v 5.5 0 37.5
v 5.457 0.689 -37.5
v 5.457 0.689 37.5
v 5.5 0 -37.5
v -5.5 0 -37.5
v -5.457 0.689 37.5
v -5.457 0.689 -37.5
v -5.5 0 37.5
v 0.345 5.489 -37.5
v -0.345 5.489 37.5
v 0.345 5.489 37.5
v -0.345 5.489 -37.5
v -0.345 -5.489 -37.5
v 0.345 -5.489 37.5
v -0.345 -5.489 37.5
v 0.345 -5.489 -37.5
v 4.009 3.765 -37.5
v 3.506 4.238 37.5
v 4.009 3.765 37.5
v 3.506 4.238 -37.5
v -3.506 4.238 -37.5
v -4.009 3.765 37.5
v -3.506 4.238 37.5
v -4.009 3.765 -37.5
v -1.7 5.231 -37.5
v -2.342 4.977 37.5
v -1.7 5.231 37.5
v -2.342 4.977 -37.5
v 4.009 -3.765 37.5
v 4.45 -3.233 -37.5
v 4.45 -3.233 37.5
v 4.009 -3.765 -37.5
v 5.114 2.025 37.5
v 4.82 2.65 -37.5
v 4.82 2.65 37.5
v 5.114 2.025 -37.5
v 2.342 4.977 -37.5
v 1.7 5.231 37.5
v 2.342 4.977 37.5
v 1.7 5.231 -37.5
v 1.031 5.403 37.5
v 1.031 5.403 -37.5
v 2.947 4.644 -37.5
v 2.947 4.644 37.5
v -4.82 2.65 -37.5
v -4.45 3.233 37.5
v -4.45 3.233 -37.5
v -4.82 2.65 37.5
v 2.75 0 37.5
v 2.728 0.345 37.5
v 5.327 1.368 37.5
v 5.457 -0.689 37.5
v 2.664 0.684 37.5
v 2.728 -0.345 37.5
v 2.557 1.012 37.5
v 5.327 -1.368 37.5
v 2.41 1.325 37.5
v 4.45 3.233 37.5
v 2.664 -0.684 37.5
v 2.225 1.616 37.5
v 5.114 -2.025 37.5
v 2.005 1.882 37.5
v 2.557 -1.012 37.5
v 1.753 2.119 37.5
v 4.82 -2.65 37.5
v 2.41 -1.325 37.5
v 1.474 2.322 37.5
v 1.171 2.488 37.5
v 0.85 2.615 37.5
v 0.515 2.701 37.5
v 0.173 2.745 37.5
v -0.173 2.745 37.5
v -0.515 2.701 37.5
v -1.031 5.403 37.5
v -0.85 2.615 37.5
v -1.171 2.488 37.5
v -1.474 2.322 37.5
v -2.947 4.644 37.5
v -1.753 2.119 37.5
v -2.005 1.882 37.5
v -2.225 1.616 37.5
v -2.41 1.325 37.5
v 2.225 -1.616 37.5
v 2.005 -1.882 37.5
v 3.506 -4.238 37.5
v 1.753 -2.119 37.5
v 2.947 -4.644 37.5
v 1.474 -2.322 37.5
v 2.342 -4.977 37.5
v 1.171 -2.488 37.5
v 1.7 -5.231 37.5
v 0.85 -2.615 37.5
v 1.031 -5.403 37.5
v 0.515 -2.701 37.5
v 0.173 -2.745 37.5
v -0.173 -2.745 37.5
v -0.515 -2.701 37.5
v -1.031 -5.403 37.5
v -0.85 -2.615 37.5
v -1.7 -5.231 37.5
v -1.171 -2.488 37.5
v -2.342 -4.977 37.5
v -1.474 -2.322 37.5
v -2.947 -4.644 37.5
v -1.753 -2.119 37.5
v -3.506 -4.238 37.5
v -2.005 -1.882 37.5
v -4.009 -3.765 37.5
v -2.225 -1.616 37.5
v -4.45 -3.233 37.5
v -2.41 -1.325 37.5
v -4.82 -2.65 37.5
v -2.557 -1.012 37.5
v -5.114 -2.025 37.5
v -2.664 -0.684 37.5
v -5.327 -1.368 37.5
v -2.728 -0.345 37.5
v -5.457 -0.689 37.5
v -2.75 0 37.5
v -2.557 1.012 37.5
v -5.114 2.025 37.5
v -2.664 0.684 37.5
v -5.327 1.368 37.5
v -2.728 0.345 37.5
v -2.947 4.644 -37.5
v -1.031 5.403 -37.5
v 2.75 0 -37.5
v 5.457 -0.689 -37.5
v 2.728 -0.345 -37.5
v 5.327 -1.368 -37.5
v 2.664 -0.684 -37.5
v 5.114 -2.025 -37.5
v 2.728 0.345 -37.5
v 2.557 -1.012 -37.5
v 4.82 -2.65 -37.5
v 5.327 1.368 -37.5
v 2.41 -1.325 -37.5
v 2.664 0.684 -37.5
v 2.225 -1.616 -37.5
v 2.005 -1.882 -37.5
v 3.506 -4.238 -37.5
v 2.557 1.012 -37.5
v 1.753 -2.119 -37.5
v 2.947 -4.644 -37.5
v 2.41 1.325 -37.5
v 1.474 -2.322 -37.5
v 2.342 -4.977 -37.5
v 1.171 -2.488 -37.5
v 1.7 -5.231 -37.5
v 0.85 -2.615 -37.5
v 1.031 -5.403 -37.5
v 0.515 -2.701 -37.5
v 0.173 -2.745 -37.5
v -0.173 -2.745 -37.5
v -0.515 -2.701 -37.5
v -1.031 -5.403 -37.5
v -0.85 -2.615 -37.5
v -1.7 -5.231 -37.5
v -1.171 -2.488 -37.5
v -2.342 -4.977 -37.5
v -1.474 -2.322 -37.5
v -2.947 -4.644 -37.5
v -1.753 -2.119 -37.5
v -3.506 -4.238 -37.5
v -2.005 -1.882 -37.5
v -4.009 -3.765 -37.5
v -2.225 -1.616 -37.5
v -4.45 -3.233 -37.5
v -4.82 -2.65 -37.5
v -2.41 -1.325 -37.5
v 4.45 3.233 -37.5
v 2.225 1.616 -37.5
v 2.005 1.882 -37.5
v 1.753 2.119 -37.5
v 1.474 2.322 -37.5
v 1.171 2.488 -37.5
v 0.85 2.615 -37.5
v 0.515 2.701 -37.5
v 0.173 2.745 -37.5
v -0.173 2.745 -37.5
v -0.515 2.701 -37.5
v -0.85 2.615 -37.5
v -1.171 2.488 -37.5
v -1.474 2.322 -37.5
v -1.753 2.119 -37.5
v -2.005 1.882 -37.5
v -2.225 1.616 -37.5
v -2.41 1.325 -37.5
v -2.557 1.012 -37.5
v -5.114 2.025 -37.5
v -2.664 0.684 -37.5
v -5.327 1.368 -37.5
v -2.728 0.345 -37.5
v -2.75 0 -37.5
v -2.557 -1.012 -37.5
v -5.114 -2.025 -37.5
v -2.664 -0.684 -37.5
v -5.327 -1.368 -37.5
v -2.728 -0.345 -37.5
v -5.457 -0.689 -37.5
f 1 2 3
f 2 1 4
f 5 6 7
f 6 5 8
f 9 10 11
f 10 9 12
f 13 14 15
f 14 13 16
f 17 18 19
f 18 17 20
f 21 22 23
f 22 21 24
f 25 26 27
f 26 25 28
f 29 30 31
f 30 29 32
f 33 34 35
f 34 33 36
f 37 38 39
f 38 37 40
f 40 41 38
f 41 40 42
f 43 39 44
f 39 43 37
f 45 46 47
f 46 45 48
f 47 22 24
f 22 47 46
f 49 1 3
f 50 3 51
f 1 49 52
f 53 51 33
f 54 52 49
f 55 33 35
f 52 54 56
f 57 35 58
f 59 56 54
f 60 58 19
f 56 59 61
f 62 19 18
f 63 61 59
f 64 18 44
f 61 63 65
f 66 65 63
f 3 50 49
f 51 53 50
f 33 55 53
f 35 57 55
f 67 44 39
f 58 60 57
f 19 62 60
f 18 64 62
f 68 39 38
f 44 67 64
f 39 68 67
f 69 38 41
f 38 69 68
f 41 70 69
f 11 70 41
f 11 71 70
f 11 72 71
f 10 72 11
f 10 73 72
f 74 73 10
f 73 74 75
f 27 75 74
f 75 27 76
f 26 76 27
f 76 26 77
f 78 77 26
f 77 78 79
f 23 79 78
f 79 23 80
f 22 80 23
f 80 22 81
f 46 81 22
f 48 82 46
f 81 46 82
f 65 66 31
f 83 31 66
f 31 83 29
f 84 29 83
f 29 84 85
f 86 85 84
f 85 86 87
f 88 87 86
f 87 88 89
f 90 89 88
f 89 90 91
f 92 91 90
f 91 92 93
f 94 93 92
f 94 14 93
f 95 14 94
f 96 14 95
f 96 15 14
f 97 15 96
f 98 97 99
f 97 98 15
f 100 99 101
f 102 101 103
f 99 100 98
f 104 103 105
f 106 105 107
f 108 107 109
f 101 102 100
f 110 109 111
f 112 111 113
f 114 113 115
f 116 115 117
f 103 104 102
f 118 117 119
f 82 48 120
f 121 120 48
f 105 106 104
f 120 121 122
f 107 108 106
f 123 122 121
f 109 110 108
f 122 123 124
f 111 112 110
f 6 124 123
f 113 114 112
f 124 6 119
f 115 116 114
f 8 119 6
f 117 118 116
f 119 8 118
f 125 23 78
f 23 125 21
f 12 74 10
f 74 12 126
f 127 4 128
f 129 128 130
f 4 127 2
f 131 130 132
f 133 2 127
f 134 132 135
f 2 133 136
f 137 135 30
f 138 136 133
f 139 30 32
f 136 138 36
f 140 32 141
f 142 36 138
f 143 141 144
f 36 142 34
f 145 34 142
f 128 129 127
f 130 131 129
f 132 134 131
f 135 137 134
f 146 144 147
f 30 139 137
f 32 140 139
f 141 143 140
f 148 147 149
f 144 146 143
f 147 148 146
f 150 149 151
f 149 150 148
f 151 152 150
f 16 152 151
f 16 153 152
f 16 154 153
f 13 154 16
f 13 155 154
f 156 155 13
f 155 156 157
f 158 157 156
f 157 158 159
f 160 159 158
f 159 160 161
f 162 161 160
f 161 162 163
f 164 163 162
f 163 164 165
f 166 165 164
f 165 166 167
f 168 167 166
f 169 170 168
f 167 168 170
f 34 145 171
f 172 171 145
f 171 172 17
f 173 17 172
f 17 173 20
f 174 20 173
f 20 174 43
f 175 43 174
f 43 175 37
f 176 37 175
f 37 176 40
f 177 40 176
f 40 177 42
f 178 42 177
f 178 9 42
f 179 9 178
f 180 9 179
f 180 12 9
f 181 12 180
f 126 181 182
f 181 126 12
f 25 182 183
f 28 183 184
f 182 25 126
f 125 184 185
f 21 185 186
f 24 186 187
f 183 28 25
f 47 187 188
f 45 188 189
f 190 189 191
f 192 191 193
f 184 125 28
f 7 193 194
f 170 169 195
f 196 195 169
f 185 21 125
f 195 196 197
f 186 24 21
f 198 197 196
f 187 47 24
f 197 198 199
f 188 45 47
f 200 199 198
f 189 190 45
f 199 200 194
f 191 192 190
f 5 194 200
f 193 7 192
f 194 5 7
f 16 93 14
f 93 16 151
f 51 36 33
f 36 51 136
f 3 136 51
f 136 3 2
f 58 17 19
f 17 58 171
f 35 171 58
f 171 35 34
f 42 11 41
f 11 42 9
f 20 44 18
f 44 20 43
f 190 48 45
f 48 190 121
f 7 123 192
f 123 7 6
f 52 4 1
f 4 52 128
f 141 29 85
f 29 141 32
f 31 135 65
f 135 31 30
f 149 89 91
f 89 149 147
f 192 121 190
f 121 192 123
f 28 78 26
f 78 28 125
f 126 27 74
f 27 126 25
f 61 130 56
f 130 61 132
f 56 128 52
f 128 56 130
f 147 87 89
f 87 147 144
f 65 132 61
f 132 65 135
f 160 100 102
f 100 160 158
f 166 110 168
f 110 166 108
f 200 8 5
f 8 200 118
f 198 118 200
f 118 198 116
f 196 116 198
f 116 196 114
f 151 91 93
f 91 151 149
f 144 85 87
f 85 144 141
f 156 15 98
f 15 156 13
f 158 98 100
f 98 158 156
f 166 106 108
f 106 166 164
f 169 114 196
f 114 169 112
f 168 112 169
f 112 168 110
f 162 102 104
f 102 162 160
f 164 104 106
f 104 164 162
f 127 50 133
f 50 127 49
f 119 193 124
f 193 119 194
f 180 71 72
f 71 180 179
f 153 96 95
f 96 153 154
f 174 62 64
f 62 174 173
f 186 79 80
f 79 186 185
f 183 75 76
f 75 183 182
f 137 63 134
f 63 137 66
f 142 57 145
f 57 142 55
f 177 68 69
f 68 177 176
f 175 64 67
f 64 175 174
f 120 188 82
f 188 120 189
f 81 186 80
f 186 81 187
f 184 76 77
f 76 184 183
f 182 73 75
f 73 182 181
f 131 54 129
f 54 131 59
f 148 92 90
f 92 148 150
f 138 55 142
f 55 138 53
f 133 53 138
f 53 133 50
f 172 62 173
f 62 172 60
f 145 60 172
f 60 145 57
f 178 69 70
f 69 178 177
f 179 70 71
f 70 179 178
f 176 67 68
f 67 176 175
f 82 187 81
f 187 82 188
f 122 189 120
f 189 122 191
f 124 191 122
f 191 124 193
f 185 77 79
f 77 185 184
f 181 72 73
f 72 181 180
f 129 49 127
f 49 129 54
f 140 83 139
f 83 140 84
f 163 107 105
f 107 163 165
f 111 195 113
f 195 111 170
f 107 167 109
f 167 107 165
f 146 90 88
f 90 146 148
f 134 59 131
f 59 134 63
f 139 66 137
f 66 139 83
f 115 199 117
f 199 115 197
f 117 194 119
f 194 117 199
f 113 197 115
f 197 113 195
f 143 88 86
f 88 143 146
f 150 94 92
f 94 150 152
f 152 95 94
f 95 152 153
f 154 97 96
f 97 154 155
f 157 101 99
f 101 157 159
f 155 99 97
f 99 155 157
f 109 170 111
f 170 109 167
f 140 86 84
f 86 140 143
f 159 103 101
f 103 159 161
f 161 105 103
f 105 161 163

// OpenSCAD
$fn = 50;


difference() {
	union() {
		translate(v = [0, 0, -37.5000000000]) {
			cylinder(h = 75, r = 5.5000000000);
		}
	}
	union() {
		translate(v = [0, 0, -100.0000000000]) {
			cylinder(h = 200, r = 2.7500000000);
		}
	}
}
